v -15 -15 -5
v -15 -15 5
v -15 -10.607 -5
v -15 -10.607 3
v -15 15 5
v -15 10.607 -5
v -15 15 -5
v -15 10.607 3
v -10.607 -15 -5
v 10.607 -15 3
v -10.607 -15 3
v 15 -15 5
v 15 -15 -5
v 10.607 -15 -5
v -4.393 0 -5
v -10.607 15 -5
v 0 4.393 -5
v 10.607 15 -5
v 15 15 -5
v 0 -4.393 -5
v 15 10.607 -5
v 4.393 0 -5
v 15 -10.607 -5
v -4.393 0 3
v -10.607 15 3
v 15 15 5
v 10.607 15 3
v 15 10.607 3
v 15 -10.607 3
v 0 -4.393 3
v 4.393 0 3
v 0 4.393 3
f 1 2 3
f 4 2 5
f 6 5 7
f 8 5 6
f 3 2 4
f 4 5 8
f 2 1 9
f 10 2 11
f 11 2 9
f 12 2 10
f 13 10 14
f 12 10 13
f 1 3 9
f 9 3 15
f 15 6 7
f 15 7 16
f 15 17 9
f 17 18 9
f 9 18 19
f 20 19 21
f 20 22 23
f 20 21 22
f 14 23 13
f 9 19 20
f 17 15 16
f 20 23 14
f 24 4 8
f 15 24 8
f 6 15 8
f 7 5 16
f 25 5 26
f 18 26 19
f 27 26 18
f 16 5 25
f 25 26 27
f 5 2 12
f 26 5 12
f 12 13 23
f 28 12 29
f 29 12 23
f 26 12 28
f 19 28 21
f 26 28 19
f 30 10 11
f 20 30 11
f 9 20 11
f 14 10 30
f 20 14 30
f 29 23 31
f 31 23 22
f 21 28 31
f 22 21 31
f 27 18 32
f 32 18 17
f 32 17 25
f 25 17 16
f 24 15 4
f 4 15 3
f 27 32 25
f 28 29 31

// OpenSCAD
difference()
{
	cube([30, 30, 10], center=true);
	translate([0,-15,-2]) rotate([0, 0, 45]) cube([15, 15, 10], center=true);
	translate([0,15,-2]) rotate([0, 0, 45]) cube([15, 15, 10], center=true);
	translate([15,0,-2]) rotate([0, 0, 45]) cube([15, 15, 10], center=true);
	translate([-15,0,-2]) rotate([0, 0, 45]) cube([15, 15, 10], center=true);
}
